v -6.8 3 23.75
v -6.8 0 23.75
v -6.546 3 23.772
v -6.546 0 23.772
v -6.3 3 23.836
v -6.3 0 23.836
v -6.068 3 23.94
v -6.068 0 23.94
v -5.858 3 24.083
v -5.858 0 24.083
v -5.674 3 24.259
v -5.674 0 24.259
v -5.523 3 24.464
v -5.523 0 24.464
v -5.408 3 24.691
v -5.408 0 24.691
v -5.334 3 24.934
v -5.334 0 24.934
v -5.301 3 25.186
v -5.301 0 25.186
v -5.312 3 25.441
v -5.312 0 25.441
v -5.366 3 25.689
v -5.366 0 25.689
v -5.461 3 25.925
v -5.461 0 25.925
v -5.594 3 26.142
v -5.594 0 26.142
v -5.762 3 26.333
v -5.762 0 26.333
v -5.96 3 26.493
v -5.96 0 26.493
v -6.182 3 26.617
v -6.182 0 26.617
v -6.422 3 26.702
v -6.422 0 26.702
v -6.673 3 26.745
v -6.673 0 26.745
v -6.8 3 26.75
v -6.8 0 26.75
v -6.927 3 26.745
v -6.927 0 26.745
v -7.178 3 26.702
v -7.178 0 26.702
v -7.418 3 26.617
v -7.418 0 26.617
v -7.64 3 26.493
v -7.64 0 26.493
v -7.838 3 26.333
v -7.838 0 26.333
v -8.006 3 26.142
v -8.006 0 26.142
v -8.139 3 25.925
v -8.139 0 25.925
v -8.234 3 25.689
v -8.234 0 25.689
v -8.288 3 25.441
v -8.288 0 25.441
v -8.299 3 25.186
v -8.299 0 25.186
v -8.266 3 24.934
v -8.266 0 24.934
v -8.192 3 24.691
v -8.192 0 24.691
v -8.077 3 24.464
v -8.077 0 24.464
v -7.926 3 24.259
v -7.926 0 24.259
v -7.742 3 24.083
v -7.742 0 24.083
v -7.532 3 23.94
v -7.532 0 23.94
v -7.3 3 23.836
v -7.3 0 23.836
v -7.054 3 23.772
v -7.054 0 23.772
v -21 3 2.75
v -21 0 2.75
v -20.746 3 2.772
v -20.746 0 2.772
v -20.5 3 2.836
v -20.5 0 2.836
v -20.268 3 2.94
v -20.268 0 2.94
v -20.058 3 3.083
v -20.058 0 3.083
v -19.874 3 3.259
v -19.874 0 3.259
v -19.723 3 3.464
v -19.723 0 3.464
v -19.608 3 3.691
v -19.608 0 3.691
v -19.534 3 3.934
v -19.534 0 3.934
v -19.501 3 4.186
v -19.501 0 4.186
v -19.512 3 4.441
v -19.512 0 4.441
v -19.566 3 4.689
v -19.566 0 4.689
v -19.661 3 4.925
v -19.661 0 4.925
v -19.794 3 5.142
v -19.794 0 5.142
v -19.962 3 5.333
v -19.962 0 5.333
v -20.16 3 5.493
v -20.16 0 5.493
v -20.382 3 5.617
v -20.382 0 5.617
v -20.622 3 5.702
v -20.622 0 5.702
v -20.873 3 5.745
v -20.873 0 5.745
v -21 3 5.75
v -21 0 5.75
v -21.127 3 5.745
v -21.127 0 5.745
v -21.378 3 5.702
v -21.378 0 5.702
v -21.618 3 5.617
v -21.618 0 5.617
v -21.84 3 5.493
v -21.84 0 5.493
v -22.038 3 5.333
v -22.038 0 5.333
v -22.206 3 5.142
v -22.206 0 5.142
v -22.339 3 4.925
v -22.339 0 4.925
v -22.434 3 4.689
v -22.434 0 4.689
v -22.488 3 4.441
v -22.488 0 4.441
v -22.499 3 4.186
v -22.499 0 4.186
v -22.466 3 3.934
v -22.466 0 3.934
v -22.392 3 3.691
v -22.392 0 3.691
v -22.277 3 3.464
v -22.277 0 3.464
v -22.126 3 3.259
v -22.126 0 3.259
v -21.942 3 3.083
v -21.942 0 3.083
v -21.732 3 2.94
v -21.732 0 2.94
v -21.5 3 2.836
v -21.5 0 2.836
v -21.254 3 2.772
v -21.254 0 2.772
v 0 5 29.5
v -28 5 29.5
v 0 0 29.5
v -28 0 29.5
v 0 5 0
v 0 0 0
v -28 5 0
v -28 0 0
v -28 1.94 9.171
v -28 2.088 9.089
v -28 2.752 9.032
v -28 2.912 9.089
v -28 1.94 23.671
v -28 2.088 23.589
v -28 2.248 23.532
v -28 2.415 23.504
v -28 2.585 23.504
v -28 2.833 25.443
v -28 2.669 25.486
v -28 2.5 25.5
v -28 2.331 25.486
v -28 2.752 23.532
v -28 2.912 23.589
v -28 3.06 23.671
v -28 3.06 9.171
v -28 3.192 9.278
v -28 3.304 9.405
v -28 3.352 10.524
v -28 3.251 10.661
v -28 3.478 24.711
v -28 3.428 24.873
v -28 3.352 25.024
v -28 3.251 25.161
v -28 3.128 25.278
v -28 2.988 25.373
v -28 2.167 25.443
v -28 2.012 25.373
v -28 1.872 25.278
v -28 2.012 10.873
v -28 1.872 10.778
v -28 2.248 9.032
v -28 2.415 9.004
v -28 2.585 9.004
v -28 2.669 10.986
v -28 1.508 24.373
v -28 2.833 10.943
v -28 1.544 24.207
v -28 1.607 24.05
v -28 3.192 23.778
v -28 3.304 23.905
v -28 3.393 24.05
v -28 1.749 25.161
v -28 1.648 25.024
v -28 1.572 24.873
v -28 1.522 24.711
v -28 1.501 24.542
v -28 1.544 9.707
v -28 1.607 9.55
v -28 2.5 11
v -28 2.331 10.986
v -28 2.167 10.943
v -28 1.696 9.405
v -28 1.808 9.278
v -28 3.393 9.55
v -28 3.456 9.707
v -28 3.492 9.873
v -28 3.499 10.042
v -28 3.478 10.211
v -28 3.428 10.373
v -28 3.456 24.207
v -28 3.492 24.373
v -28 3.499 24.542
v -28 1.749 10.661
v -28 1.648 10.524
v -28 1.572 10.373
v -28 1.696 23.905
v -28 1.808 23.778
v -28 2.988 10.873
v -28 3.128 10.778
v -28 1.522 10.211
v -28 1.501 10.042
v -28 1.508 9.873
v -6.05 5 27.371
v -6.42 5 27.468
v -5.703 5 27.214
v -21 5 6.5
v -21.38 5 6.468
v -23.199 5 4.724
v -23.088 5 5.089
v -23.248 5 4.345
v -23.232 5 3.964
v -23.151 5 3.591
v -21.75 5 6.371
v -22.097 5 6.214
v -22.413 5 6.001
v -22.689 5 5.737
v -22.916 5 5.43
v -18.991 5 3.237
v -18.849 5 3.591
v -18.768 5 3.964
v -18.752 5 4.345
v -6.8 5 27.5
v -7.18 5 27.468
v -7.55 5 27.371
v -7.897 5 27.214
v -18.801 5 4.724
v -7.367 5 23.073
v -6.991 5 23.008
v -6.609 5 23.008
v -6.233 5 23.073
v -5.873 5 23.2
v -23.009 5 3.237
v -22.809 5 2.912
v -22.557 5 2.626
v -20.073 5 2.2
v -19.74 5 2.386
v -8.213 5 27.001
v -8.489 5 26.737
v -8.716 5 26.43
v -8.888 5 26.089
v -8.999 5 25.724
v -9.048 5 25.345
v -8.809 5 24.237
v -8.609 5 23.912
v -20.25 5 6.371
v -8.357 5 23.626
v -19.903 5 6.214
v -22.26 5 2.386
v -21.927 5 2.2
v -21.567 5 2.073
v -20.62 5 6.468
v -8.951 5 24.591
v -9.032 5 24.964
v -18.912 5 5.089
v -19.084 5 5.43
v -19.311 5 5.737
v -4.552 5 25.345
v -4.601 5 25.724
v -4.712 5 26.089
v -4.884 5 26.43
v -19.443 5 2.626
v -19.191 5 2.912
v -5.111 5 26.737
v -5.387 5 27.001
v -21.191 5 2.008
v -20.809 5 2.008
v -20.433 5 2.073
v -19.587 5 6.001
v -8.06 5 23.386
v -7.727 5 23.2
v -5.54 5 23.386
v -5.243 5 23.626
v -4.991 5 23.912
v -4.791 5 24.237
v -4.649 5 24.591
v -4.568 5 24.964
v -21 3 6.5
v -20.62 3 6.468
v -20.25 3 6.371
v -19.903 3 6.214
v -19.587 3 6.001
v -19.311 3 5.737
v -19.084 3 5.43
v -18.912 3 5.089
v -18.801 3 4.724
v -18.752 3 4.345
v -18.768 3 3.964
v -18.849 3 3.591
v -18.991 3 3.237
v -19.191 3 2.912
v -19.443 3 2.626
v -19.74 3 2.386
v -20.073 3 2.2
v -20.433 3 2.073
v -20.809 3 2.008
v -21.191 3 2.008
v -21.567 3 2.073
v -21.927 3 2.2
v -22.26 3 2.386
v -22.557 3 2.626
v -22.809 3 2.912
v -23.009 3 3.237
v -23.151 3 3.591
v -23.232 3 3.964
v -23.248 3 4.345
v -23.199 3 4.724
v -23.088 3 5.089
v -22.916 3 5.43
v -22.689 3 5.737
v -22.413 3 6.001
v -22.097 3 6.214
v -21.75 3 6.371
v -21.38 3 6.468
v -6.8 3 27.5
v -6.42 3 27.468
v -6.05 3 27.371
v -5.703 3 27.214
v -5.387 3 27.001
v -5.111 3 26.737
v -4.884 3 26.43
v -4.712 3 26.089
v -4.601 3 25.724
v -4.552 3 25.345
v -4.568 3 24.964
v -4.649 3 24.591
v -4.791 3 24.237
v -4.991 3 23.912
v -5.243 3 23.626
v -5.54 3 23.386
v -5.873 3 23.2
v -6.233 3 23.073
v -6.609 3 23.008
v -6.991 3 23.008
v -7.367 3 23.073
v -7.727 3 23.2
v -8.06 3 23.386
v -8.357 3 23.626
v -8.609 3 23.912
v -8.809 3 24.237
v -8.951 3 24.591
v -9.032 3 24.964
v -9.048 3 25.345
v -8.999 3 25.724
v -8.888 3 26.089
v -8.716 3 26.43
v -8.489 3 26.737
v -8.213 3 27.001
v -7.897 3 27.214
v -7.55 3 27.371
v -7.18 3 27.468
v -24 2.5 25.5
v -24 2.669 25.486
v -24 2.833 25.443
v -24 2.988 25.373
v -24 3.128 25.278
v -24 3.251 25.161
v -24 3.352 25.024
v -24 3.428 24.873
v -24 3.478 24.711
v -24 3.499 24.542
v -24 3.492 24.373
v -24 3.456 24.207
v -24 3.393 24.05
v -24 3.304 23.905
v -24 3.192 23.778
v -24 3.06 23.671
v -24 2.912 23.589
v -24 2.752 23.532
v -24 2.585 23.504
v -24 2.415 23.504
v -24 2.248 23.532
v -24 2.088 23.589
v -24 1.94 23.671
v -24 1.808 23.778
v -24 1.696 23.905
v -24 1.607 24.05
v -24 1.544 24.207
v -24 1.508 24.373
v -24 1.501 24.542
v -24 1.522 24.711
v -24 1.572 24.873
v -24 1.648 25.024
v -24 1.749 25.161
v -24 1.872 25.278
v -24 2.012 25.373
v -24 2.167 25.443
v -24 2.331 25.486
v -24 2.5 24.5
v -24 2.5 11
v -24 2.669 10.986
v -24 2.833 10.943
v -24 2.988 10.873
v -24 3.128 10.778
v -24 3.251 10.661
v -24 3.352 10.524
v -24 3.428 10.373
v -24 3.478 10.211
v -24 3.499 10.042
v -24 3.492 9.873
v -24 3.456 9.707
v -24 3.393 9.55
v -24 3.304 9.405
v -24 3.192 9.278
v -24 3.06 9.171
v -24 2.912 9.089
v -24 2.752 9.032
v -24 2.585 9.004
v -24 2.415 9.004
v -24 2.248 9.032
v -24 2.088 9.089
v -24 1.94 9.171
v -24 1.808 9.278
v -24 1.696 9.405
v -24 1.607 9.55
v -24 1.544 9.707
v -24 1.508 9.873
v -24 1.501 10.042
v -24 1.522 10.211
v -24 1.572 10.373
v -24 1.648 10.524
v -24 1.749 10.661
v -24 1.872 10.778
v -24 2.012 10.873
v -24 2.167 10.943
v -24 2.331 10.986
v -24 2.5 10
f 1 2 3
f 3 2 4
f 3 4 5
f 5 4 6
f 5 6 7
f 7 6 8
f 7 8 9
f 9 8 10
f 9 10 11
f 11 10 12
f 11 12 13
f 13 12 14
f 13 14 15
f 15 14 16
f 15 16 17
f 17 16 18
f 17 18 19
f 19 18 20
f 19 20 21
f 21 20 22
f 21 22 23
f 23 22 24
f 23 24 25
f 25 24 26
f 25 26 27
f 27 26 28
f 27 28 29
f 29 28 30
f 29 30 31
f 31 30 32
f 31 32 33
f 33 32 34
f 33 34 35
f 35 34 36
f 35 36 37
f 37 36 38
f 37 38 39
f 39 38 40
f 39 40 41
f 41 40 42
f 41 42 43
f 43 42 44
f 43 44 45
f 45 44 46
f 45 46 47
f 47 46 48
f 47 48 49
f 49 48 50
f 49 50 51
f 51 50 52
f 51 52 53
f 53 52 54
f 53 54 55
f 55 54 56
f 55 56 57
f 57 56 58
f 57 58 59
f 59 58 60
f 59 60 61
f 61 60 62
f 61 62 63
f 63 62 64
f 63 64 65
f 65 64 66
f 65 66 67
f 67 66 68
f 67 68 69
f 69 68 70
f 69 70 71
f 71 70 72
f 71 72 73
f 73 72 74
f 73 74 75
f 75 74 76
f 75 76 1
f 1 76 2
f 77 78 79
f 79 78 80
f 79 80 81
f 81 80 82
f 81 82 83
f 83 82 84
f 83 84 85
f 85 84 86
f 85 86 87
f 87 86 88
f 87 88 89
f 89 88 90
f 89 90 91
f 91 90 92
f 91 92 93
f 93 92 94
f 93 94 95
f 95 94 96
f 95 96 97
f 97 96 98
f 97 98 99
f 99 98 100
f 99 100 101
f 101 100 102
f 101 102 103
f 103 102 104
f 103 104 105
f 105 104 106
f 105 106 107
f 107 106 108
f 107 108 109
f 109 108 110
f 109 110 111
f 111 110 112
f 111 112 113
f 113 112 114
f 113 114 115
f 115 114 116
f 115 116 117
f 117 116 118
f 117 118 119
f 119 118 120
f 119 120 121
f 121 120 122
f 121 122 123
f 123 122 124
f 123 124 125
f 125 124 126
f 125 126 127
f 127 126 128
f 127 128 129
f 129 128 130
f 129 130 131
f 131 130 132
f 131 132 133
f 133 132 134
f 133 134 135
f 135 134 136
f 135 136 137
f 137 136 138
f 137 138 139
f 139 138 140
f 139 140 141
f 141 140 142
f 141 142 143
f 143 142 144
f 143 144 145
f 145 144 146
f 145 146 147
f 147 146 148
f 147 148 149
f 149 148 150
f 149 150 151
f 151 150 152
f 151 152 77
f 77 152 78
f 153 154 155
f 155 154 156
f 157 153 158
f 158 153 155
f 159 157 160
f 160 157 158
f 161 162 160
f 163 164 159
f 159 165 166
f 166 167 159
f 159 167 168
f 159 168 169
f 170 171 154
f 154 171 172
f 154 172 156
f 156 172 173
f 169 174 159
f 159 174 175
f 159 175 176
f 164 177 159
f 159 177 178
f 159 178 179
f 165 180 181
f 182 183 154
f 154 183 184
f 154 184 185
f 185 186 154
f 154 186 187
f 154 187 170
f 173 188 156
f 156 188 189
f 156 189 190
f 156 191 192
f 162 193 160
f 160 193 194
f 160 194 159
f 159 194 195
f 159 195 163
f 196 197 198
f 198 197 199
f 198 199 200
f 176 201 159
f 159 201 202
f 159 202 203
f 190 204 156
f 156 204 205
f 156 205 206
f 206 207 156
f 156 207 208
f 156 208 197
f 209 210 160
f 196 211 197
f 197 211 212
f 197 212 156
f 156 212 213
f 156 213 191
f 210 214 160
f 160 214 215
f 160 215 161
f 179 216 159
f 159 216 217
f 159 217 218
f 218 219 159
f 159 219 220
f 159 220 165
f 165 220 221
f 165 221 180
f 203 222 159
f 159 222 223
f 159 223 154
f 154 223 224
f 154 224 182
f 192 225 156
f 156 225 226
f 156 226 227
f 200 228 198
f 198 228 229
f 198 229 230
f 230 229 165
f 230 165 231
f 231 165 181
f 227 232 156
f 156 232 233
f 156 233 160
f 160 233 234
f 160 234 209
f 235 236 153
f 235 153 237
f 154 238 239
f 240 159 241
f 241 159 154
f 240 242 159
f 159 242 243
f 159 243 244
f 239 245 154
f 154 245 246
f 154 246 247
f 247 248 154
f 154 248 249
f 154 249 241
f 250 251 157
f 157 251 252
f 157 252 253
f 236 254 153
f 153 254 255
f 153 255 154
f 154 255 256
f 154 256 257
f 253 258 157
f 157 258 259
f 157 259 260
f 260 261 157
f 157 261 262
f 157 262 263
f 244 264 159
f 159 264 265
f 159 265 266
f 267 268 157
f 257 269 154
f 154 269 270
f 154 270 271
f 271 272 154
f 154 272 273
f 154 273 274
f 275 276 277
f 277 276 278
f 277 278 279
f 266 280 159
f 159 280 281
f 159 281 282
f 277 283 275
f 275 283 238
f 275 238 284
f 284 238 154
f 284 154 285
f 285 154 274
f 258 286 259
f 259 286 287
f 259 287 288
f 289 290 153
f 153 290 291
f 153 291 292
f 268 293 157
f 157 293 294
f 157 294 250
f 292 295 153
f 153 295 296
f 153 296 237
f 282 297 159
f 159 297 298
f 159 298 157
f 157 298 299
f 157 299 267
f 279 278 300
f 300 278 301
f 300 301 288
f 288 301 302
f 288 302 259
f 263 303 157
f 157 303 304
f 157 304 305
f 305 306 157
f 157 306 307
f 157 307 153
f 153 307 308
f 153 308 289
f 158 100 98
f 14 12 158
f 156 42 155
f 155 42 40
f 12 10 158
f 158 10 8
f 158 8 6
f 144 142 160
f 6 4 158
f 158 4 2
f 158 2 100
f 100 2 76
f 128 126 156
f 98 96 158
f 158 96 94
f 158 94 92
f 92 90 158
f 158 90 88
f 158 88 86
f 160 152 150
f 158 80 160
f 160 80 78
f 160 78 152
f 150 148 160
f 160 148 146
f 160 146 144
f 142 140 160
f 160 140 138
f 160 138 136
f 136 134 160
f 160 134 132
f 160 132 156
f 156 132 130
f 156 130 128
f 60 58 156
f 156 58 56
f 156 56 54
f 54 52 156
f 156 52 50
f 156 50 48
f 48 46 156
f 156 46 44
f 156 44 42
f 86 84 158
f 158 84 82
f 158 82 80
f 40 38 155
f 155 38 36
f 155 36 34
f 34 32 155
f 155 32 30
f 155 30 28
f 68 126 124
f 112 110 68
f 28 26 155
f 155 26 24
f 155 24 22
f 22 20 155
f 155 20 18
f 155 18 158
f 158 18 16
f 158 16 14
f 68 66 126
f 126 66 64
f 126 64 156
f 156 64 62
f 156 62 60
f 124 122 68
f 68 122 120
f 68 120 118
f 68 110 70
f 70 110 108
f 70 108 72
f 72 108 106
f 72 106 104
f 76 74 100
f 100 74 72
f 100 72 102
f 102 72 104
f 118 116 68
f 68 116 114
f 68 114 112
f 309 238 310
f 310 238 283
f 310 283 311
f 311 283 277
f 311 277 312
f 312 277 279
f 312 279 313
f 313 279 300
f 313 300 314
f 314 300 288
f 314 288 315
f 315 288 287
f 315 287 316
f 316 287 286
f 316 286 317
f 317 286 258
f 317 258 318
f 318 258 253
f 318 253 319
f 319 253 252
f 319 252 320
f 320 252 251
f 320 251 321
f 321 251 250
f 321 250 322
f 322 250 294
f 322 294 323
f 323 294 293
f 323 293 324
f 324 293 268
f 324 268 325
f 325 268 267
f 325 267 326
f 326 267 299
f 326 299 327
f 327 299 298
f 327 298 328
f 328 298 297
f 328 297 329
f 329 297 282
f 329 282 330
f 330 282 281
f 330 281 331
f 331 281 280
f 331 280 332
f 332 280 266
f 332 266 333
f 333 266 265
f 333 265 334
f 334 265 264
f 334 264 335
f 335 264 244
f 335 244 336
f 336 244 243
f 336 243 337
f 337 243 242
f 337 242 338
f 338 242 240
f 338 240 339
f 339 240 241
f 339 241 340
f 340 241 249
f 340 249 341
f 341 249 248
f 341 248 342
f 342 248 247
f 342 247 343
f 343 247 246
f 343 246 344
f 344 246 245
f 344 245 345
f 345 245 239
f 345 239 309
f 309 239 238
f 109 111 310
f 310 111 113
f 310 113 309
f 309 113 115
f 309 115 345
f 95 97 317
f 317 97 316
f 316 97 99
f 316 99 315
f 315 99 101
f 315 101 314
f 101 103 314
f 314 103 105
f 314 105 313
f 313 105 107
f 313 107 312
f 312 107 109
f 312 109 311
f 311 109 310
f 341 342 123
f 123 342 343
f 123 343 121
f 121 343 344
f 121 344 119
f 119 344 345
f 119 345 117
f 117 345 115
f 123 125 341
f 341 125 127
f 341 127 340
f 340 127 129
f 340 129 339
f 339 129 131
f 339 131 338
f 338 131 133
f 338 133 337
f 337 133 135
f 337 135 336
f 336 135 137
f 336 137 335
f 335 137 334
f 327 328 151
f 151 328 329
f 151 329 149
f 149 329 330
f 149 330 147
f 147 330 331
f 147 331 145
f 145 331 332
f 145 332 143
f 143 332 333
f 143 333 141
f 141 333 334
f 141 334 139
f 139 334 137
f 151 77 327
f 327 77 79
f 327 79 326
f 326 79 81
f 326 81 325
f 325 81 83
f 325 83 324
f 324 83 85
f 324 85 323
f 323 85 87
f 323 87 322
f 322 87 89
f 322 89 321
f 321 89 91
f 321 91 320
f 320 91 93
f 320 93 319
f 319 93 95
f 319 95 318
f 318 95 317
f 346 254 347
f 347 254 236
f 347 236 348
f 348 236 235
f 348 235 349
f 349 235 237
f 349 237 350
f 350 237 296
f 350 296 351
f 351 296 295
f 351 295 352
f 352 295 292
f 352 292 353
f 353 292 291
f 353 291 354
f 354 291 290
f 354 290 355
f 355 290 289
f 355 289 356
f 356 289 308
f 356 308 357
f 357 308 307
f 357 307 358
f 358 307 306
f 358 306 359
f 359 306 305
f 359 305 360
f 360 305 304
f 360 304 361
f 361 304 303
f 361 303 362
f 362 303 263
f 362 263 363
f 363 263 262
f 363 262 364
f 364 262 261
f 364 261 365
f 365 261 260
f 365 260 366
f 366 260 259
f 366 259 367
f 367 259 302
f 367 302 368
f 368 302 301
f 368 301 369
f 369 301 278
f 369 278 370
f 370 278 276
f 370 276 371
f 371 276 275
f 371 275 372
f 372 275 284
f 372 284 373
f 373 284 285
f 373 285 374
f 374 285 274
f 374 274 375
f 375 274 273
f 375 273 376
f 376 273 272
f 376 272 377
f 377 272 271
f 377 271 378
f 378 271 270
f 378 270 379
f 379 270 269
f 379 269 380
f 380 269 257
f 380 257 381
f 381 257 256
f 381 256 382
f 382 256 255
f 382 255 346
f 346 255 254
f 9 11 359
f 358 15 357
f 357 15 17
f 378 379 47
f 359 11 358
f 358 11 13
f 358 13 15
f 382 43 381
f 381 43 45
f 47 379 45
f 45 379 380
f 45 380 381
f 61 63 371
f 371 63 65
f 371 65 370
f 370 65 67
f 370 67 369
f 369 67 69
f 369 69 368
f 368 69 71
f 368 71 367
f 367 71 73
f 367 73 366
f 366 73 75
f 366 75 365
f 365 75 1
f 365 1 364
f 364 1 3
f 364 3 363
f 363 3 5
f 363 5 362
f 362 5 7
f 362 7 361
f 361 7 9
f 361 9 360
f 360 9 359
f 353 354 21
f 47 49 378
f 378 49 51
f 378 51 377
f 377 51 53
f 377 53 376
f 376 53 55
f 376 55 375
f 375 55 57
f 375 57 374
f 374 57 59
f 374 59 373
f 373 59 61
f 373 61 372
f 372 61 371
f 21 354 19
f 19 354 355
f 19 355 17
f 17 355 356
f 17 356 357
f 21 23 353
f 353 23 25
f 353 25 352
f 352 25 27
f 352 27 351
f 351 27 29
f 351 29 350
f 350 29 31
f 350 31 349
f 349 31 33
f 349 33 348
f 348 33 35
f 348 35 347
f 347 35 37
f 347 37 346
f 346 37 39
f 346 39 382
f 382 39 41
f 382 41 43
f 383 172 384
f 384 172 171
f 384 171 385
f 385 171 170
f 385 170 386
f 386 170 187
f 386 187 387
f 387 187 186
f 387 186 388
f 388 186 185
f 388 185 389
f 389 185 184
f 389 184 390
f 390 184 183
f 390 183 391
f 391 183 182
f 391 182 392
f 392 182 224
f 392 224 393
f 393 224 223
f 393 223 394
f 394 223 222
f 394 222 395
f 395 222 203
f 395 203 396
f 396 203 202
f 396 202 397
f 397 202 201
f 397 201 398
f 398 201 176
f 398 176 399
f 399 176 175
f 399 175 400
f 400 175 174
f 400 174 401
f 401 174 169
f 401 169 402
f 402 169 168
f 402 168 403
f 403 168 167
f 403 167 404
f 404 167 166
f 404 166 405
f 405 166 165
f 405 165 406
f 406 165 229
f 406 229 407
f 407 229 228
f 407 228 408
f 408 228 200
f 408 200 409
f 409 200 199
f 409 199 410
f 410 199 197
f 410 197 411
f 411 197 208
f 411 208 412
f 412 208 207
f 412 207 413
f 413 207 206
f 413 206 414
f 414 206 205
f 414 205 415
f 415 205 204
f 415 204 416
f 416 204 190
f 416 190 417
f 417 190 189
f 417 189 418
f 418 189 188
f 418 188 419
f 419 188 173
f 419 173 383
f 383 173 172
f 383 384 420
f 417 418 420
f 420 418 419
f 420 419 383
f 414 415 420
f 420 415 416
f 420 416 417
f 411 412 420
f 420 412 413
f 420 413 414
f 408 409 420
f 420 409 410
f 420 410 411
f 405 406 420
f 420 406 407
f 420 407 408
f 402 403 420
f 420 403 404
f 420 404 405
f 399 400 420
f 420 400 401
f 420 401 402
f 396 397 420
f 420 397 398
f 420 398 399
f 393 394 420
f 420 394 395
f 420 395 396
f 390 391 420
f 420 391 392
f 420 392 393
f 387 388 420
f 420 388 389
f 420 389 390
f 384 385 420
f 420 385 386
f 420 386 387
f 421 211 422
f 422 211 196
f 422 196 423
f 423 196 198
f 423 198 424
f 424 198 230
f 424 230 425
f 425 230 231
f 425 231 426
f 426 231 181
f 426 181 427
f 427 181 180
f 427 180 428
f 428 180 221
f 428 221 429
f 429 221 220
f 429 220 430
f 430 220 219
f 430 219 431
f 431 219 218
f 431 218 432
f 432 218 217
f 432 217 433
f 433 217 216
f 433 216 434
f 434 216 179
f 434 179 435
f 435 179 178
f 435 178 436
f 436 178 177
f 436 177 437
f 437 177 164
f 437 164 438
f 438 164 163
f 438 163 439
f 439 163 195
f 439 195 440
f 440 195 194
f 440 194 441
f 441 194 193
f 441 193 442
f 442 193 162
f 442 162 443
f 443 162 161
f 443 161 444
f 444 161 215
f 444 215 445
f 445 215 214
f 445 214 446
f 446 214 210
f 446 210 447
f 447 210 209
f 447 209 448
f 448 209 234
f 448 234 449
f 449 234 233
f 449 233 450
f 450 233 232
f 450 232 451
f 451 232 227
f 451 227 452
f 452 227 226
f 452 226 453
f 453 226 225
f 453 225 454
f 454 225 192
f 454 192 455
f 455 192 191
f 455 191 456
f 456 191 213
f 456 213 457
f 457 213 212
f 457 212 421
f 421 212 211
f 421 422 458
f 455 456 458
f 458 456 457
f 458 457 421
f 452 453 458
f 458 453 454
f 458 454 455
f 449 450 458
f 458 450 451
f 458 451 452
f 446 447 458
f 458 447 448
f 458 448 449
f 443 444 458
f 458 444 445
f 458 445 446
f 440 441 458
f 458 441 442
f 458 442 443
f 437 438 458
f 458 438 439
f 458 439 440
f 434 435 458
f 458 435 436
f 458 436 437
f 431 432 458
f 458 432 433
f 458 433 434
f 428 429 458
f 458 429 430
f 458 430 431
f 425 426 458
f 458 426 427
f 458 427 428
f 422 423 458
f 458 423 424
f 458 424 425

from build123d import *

# Parameters (mm, degrees)
SKETCH_1_W          = 28
SKETCH_1_H          = 29.5
EXTRUDE_1_DEPTH     = 5
SKETCH_1_20_R       = 1.5
CUT_EXTRUDE_1_DEPTH = 41.978652979
CUT_EXTRUDE_START   = 5
SKETCH_1_21_R       = 2.25
CUT_EXTRUDE_2_DEPTH = 2
SKETCH_4_R          = 1
CUT_EXTRUDE_3_DEPTH = 4


with BuildPart() as part:
    # 草图1 → 凸台-拉伸1 (new body)
    with BuildSketch(Plane(origin=(0, 0, 0), x_dir=(1, 0, 0), z_dir=(0, 1, 0))):
        with Locations((-14, -14.75)):
            Rectangle(SKETCH_1_W, SKETCH_1_H)
    extrude(amount=EXTRUDE_1_DEPTH)

    # 草图1<20> → 切除-拉伸1 (cut, through all)
    with BuildSketch(Plane(origin=(0, 0, 0), x_dir=(1, 0, 0), z_dir=(0, 1, 0))):
        with Locations(Location((-21, -4.25, 0), (0, 0, 270))):
            Circle(SKETCH_1_20_R)
        with Locations(Location((-6.8, -25.25, 0), (0, 0, 270))):
            Circle(SKETCH_1_20_R)
    extrude(amount=CUT_EXTRUDE_1_DEPTH, mode=Mode.SUBTRACT)

    # 草图1<21> → 切除-拉伸2 (cut)
    with BuildSketch(Plane(origin=(0, 0, 0), x_dir=(1, 0, 0), z_dir=(0, 1, 0)).offset(CUT_EXTRUDE_START)):
        with Locations(Location((-21, -4.25, 0), (0, 0, 270))):
            Circle(SKETCH_1_21_R)
        with Locations(Location((-6.8, -25.25, 0), (0, 0, 270))):
            Circle(SKETCH_1_21_R)
    extrude(amount=-CUT_EXTRUDE_2_DEPTH, mode=Mode.SUBTRACT)

    # 草图4 → 切除-拉伸3 (cut)
    with BuildSketch(Plane.ZY.offset(28)):
        with Locations((10, 2.5)):
            Circle(SKETCH_4_R)
        with Locations((24.5, 2.5)):
            Circle(SKETCH_4_R)
    extrude(amount=-CUT_EXTRUDE_3_DEPTH, mode=Mode.SUBTRACT)


solid = part.part
